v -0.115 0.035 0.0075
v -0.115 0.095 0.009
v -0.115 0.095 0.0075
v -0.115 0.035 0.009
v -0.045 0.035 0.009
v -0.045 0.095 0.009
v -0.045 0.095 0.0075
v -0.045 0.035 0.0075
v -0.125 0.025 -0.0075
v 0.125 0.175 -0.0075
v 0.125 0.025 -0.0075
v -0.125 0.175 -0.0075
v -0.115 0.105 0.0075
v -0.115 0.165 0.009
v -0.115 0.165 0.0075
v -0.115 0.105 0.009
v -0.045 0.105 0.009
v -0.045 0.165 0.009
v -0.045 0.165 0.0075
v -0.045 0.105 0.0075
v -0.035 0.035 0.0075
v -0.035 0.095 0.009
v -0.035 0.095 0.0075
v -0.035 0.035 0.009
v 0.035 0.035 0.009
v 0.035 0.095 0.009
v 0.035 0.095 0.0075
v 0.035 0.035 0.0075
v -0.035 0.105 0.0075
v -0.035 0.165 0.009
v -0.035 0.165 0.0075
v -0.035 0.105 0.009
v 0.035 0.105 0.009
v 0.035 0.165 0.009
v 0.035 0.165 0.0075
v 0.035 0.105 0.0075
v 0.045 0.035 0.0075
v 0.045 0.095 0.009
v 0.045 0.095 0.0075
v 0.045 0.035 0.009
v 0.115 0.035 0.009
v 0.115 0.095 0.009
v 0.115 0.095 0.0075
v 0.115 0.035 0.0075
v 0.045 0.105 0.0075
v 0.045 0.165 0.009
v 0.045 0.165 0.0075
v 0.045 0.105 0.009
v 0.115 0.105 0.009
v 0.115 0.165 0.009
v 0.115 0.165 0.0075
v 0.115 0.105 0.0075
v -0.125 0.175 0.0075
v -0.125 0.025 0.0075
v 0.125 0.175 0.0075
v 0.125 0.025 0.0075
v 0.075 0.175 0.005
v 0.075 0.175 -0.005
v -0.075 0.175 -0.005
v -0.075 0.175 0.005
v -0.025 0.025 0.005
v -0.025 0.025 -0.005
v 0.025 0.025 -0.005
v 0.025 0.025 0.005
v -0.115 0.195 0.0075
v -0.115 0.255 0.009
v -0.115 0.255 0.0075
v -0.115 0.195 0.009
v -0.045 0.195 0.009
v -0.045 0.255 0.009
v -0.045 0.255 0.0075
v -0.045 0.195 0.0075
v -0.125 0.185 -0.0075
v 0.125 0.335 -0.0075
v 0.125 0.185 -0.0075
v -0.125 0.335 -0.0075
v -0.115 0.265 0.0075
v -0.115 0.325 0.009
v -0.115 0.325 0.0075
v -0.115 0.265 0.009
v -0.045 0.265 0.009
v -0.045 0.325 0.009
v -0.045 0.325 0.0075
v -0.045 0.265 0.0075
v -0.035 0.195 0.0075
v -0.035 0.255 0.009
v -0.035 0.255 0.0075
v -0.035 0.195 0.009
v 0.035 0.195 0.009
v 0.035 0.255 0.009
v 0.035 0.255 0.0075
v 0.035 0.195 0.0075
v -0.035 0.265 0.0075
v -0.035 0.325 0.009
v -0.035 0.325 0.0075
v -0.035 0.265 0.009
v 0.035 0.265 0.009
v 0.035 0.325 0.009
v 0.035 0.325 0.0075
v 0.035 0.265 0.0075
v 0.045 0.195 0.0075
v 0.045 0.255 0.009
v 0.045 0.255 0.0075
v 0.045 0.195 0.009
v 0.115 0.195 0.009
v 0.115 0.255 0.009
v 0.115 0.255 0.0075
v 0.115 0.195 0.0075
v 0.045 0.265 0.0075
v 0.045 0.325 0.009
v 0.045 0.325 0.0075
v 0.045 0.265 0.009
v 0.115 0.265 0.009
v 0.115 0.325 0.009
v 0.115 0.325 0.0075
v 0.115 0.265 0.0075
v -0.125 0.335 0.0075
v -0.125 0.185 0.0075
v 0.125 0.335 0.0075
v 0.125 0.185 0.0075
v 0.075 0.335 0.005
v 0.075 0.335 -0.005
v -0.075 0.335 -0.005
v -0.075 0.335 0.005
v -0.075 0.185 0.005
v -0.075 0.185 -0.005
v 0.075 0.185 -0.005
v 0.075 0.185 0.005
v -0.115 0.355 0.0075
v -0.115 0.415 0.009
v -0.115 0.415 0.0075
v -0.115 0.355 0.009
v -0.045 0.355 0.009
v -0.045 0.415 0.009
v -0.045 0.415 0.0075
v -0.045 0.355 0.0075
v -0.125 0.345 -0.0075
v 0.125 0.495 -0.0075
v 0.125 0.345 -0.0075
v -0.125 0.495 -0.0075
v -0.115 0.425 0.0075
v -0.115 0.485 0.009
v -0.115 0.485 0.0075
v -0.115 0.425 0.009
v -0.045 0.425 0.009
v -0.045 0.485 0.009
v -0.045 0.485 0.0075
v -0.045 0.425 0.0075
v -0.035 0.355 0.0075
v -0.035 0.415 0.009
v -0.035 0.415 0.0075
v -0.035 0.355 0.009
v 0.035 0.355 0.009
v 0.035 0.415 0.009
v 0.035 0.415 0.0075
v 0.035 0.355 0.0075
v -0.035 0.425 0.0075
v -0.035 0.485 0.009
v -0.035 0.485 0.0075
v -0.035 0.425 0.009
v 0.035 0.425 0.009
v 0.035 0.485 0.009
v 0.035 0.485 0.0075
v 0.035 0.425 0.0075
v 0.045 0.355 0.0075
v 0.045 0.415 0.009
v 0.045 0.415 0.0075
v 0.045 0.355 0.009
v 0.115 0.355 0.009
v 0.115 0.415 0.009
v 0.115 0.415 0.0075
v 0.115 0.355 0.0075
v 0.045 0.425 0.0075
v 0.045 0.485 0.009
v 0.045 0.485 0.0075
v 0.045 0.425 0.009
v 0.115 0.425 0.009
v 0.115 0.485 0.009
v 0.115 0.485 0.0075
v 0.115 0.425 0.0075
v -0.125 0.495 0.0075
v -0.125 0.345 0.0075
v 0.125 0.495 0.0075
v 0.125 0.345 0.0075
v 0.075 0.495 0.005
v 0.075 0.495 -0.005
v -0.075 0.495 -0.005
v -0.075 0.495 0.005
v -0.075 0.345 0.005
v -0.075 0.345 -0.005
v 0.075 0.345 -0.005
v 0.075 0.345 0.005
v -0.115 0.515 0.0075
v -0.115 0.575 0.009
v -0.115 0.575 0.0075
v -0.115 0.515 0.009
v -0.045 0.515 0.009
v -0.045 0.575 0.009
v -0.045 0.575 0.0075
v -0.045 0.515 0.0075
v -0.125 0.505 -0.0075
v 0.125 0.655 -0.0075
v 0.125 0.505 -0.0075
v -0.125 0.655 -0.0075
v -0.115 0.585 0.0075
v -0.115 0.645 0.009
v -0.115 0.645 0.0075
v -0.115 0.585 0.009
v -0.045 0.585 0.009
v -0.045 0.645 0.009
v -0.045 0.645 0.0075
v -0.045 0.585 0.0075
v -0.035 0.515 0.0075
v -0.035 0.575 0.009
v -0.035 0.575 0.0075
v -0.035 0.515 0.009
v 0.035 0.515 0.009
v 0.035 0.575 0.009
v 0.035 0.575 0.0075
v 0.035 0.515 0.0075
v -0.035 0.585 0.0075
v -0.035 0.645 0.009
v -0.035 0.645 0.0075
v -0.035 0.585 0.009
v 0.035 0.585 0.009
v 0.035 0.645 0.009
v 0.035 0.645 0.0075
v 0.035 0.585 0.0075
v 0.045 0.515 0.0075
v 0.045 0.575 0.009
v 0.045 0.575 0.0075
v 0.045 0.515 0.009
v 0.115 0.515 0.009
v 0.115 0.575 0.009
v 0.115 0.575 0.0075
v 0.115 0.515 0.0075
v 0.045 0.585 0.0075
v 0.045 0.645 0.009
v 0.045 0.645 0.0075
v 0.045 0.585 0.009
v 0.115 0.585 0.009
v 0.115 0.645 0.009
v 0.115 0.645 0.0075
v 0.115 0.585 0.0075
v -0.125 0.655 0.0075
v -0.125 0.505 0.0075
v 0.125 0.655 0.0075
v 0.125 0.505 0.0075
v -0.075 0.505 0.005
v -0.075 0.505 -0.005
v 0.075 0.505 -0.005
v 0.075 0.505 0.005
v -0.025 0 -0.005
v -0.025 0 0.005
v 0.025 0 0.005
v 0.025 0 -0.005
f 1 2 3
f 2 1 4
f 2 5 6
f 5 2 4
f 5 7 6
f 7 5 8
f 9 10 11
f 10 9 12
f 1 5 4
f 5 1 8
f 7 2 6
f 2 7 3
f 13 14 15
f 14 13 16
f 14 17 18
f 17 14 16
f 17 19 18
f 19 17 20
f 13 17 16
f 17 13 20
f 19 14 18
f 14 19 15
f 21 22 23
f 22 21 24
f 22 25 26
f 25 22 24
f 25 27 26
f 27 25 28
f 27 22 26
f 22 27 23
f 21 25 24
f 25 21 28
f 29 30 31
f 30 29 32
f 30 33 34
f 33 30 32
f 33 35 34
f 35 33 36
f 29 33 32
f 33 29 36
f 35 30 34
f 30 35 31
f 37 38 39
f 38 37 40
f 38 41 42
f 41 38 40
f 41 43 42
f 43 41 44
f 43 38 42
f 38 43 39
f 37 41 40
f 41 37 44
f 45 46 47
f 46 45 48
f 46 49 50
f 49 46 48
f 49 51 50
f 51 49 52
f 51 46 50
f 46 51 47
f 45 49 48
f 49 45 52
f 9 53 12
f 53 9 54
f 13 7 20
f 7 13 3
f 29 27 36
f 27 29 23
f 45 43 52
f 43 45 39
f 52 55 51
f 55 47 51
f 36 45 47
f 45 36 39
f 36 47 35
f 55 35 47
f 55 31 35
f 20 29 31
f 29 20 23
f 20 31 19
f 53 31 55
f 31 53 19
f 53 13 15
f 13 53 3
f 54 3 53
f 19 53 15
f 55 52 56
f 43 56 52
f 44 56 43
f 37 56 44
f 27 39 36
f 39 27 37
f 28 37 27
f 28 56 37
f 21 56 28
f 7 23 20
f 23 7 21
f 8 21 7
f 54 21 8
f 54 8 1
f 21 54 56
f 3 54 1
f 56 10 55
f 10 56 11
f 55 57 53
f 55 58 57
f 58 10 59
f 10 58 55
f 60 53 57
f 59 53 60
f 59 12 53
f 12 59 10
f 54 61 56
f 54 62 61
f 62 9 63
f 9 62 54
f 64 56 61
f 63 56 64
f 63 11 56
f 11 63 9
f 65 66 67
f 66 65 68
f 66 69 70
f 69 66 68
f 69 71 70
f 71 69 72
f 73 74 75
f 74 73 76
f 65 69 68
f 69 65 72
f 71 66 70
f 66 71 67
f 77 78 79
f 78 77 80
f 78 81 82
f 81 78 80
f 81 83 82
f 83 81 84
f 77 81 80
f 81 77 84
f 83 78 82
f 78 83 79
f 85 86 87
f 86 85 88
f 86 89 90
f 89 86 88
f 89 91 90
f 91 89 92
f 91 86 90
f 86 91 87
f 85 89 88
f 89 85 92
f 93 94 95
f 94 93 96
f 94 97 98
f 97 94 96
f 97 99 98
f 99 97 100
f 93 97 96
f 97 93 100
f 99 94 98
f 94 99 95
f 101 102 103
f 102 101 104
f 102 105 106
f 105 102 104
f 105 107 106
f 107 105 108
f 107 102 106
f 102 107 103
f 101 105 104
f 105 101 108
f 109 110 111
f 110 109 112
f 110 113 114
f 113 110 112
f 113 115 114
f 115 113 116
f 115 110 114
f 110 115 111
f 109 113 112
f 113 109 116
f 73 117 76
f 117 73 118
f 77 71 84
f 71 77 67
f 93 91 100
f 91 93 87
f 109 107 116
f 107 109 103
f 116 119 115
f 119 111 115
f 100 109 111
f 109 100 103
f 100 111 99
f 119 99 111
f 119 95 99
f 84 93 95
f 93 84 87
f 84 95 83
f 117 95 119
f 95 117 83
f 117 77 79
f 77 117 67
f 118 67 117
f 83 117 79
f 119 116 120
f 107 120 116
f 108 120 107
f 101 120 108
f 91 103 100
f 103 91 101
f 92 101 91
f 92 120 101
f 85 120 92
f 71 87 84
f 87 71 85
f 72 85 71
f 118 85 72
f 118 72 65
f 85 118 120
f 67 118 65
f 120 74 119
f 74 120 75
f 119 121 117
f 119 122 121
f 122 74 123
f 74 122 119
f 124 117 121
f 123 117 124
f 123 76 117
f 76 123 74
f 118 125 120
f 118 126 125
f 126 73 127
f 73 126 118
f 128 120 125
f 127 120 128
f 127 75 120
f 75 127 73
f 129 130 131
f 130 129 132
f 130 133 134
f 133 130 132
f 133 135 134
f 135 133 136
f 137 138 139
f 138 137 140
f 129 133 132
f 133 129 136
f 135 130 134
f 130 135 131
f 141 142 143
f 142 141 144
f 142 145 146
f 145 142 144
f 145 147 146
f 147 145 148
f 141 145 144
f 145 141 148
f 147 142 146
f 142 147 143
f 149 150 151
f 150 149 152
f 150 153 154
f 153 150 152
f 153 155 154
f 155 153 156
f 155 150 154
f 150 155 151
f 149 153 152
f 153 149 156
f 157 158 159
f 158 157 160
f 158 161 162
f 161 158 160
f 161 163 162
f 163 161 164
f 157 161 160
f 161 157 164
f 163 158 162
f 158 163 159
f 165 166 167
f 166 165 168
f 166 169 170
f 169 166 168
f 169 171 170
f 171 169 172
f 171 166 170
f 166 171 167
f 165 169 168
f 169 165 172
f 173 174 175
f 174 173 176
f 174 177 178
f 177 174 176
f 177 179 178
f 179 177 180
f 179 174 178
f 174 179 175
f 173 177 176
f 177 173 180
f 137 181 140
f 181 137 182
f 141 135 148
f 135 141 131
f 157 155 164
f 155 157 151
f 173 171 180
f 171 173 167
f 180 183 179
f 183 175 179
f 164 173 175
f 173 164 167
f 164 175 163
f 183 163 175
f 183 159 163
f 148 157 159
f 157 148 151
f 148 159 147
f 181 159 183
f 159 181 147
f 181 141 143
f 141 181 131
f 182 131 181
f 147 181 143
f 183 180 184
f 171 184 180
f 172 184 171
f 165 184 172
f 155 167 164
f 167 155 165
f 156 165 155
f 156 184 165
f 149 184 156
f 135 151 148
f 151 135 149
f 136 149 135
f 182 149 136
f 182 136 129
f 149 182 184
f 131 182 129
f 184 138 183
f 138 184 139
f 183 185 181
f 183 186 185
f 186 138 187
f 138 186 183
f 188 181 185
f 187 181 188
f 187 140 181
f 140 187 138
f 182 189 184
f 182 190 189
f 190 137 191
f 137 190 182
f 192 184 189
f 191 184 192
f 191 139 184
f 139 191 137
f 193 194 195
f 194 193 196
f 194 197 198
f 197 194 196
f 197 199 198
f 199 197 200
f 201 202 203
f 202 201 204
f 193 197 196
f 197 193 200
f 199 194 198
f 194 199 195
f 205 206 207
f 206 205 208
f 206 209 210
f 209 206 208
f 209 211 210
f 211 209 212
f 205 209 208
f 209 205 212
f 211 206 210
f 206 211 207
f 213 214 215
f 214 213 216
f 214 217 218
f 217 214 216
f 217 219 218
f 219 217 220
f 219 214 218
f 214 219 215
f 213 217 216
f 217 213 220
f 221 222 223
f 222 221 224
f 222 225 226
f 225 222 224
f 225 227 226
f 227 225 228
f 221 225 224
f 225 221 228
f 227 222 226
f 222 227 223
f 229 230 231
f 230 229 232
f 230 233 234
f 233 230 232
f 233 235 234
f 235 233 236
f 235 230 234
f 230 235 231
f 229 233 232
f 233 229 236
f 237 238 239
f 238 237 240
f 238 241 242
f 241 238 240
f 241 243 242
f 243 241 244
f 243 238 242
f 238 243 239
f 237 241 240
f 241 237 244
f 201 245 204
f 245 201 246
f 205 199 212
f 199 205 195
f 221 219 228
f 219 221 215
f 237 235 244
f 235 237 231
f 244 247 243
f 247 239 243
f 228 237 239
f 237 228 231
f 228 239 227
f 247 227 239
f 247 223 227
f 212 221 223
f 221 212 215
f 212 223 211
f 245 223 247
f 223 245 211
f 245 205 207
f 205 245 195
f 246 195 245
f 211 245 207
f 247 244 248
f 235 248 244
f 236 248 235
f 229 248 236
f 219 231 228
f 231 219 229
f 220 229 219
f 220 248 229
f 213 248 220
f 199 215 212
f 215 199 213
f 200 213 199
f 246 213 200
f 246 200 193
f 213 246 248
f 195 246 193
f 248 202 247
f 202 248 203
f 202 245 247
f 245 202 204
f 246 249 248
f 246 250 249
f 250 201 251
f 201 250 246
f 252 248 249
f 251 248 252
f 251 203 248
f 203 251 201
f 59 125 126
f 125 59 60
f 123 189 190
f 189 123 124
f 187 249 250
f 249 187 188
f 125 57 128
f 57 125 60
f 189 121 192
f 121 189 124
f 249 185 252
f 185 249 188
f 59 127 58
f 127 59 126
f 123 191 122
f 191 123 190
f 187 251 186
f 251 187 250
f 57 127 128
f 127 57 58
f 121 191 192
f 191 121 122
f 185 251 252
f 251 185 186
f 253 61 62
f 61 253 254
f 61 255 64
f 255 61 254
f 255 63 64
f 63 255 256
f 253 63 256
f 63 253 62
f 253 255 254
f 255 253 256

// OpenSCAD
sl = 0.25;
sw = 0.15;
sh = 0.015;
ssep = 0.01;
Nl = 3;
Nw = 2;
sep = 0.01;

cl = (sl-(Nl+1)*sep)/Nl;
cw = (sw-(Nw+1)*sep)/Nw;
ch = sh*1.1;
echo(cl);
echo(cw);

conl = 0.1;
conh = 0.01;

hubcl = 0.05;
hubcw = 0.05;
hubch = 0.01;
translate([0,hubcw/2,0])
  union(){
    cube([hubcl,hubcw,hubch],center=true);
  translate([-sl/2,0,-sh/2]){
    translate([sl*0.2, 0, -(conh-sh)/2])
      cube([conl,(sw+ssep)*4-ssep,conh]);
    translate([sl*0.8-conl, 0, -(conh-sh)/2])
      cube([conl,(sw+ssep)*4-ssep,conh]);
    for(i=[0:3]){
      translate([0, (sw+ssep)*i, 0]){
        cube([sl,sw,sh]);
        translate([sep, sep, 0])
          for(i=[0:2])
            for(j=[0:1])
              translate([i*(cl+sep), j*(cw+sep), 0])
                cube([cl,cw,ch]);
        }
    }
  }
  }
